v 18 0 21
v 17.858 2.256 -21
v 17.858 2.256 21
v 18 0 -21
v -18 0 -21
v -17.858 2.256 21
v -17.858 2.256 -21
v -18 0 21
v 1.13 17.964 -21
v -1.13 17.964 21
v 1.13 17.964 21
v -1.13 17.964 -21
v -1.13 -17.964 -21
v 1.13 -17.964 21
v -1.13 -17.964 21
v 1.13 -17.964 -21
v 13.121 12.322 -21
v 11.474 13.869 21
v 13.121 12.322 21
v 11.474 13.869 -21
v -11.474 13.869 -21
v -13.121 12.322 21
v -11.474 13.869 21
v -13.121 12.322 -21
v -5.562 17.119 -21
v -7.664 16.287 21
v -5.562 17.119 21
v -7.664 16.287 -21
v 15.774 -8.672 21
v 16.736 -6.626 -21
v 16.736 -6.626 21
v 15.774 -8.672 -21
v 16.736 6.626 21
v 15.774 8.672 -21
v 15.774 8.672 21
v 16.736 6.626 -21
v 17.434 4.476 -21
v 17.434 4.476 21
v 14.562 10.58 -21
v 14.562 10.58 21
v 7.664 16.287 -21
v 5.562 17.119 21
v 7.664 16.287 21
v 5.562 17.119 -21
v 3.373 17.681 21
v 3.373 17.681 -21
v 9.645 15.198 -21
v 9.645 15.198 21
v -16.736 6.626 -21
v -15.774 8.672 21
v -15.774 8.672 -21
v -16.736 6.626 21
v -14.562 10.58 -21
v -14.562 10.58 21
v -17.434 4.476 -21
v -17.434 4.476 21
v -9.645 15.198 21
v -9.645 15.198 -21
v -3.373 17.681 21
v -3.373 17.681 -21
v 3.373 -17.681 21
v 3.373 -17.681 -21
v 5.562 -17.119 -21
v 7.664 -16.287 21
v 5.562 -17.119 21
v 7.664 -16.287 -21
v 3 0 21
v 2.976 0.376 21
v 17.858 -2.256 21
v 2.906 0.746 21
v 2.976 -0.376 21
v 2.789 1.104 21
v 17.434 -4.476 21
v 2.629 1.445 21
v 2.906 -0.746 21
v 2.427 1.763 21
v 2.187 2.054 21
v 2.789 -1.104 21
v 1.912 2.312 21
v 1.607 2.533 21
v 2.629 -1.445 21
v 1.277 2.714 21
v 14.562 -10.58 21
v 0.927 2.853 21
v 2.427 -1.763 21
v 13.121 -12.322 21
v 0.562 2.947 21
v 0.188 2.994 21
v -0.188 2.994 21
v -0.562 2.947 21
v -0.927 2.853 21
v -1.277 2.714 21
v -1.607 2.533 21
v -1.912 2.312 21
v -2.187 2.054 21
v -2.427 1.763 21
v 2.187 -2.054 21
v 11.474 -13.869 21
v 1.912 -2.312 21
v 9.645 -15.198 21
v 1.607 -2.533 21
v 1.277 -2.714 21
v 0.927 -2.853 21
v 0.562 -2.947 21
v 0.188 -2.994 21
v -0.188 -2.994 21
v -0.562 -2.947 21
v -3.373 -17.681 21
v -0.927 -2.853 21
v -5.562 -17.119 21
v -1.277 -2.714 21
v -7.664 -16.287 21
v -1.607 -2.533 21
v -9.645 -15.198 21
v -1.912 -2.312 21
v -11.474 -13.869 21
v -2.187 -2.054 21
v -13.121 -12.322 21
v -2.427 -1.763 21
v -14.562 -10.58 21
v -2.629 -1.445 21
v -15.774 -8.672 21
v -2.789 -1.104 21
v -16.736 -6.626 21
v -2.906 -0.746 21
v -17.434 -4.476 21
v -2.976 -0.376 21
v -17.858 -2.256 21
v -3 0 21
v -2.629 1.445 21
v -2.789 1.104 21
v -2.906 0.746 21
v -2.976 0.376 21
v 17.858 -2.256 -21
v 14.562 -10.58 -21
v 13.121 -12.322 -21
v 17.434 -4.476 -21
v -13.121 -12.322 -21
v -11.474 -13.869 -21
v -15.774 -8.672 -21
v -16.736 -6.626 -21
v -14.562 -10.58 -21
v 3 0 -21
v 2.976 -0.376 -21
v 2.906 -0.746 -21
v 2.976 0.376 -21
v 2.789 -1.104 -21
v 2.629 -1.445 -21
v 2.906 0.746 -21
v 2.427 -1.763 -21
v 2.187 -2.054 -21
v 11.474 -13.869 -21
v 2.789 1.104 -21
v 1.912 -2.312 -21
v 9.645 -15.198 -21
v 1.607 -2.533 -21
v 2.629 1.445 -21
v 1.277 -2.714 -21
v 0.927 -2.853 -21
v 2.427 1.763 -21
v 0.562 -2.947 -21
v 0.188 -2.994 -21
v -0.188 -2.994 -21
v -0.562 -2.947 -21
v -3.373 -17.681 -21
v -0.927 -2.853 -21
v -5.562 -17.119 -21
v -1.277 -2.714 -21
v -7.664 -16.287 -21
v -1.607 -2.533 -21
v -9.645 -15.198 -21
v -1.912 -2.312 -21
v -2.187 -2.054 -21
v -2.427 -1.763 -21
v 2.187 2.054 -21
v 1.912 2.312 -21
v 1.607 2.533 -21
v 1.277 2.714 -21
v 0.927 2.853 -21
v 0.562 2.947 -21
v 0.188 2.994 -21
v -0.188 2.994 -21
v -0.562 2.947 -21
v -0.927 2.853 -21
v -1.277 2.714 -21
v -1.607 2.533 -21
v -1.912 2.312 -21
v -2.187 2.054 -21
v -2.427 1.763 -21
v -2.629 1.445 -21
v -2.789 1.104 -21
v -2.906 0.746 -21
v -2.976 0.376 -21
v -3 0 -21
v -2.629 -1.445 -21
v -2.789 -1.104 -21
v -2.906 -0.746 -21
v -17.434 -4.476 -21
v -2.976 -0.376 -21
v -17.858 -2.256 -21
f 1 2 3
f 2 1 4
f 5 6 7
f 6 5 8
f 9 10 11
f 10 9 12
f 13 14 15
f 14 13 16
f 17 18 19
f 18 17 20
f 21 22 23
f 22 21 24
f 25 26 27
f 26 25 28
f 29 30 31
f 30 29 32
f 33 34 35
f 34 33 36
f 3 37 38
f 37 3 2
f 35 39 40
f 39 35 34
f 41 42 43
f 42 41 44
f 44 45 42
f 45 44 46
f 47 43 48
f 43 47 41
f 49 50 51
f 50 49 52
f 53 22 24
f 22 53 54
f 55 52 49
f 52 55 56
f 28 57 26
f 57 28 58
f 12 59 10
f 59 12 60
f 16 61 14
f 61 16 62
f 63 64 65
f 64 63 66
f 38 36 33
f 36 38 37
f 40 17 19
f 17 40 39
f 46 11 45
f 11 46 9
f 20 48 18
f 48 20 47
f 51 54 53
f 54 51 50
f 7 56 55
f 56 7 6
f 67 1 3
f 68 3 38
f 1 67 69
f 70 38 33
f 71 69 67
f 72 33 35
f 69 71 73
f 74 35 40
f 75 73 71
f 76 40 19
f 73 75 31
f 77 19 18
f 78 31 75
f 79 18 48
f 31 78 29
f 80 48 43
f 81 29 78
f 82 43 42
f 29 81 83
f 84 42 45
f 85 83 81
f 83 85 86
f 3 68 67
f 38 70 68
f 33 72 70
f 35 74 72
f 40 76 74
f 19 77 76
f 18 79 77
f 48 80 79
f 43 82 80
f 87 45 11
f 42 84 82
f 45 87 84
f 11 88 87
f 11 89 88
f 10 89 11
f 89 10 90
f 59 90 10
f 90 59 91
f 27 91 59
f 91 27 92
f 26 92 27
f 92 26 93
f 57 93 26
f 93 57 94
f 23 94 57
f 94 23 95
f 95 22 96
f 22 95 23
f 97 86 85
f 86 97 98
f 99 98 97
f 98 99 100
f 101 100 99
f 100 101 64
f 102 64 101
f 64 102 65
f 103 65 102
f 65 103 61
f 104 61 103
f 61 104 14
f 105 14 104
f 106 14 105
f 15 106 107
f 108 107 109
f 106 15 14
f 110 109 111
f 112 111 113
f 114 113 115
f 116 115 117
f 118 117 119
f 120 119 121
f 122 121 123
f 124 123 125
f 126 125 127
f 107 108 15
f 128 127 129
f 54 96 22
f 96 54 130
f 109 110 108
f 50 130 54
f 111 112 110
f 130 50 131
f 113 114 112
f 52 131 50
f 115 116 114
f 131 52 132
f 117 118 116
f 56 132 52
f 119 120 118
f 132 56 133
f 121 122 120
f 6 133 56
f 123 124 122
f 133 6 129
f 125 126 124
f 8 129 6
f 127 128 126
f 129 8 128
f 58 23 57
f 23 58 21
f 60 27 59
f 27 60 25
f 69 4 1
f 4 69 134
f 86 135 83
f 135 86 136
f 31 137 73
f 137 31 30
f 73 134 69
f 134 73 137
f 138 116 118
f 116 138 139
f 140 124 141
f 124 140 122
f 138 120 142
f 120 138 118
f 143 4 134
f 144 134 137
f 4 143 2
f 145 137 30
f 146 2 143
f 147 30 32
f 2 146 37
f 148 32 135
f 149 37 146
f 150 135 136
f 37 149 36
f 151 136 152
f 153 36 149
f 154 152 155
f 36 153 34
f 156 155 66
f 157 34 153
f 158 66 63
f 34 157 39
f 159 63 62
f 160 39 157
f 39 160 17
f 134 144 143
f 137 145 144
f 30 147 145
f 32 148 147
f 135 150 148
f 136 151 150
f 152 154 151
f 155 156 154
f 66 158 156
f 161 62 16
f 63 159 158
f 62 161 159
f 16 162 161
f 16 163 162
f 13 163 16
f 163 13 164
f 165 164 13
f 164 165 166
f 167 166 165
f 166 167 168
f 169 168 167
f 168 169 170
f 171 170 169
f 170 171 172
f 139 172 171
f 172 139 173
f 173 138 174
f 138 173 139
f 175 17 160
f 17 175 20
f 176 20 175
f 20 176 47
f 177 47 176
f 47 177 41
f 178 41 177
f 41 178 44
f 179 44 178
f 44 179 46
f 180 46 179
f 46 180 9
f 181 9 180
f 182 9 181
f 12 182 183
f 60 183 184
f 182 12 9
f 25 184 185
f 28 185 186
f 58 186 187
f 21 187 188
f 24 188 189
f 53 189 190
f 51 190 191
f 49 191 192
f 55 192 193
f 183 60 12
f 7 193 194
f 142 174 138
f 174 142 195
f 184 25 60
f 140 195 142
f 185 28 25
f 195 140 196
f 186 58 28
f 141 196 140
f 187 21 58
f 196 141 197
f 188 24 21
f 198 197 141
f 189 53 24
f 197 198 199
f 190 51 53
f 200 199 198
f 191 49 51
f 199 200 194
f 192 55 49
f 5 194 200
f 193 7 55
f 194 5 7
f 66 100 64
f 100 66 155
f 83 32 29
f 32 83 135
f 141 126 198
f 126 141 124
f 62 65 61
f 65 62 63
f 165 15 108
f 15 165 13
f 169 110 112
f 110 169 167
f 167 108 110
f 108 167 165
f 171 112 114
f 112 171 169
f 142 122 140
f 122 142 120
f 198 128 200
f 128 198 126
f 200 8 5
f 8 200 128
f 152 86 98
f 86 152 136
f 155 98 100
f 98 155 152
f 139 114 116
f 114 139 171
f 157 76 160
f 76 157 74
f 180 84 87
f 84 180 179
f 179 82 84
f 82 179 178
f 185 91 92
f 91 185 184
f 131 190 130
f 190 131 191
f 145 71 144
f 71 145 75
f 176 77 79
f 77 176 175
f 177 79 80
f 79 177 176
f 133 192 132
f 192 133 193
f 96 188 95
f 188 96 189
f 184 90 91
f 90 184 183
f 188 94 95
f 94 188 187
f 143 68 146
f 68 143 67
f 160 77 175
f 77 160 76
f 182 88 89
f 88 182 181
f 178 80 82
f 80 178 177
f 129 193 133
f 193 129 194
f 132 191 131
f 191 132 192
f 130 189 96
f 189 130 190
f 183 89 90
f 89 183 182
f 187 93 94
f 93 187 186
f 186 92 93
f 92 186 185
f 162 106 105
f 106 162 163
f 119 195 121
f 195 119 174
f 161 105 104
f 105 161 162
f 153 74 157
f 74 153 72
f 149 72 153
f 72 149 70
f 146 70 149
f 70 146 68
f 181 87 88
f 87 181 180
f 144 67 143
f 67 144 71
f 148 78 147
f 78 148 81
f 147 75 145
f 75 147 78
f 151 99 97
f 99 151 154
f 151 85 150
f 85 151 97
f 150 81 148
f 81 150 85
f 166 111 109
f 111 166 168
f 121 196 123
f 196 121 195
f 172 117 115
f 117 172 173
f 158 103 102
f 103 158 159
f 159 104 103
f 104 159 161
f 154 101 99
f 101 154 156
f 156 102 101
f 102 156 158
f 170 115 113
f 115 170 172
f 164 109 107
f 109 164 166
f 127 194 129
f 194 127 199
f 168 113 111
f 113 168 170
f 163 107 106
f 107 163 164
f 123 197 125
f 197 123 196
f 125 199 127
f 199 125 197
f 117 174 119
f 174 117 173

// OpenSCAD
$fn = 50;


difference() {
	union() {
		translate(v = [0, 0, -21.0000000000]) {
			cylinder(h = 42, r = 18.0000000000);
		}
	}
	union() {
		translate(v = [0, 0, -100.0000000000]) {
			cylinder(h = 200, r = 3.0000000000);
		}
	}
}
